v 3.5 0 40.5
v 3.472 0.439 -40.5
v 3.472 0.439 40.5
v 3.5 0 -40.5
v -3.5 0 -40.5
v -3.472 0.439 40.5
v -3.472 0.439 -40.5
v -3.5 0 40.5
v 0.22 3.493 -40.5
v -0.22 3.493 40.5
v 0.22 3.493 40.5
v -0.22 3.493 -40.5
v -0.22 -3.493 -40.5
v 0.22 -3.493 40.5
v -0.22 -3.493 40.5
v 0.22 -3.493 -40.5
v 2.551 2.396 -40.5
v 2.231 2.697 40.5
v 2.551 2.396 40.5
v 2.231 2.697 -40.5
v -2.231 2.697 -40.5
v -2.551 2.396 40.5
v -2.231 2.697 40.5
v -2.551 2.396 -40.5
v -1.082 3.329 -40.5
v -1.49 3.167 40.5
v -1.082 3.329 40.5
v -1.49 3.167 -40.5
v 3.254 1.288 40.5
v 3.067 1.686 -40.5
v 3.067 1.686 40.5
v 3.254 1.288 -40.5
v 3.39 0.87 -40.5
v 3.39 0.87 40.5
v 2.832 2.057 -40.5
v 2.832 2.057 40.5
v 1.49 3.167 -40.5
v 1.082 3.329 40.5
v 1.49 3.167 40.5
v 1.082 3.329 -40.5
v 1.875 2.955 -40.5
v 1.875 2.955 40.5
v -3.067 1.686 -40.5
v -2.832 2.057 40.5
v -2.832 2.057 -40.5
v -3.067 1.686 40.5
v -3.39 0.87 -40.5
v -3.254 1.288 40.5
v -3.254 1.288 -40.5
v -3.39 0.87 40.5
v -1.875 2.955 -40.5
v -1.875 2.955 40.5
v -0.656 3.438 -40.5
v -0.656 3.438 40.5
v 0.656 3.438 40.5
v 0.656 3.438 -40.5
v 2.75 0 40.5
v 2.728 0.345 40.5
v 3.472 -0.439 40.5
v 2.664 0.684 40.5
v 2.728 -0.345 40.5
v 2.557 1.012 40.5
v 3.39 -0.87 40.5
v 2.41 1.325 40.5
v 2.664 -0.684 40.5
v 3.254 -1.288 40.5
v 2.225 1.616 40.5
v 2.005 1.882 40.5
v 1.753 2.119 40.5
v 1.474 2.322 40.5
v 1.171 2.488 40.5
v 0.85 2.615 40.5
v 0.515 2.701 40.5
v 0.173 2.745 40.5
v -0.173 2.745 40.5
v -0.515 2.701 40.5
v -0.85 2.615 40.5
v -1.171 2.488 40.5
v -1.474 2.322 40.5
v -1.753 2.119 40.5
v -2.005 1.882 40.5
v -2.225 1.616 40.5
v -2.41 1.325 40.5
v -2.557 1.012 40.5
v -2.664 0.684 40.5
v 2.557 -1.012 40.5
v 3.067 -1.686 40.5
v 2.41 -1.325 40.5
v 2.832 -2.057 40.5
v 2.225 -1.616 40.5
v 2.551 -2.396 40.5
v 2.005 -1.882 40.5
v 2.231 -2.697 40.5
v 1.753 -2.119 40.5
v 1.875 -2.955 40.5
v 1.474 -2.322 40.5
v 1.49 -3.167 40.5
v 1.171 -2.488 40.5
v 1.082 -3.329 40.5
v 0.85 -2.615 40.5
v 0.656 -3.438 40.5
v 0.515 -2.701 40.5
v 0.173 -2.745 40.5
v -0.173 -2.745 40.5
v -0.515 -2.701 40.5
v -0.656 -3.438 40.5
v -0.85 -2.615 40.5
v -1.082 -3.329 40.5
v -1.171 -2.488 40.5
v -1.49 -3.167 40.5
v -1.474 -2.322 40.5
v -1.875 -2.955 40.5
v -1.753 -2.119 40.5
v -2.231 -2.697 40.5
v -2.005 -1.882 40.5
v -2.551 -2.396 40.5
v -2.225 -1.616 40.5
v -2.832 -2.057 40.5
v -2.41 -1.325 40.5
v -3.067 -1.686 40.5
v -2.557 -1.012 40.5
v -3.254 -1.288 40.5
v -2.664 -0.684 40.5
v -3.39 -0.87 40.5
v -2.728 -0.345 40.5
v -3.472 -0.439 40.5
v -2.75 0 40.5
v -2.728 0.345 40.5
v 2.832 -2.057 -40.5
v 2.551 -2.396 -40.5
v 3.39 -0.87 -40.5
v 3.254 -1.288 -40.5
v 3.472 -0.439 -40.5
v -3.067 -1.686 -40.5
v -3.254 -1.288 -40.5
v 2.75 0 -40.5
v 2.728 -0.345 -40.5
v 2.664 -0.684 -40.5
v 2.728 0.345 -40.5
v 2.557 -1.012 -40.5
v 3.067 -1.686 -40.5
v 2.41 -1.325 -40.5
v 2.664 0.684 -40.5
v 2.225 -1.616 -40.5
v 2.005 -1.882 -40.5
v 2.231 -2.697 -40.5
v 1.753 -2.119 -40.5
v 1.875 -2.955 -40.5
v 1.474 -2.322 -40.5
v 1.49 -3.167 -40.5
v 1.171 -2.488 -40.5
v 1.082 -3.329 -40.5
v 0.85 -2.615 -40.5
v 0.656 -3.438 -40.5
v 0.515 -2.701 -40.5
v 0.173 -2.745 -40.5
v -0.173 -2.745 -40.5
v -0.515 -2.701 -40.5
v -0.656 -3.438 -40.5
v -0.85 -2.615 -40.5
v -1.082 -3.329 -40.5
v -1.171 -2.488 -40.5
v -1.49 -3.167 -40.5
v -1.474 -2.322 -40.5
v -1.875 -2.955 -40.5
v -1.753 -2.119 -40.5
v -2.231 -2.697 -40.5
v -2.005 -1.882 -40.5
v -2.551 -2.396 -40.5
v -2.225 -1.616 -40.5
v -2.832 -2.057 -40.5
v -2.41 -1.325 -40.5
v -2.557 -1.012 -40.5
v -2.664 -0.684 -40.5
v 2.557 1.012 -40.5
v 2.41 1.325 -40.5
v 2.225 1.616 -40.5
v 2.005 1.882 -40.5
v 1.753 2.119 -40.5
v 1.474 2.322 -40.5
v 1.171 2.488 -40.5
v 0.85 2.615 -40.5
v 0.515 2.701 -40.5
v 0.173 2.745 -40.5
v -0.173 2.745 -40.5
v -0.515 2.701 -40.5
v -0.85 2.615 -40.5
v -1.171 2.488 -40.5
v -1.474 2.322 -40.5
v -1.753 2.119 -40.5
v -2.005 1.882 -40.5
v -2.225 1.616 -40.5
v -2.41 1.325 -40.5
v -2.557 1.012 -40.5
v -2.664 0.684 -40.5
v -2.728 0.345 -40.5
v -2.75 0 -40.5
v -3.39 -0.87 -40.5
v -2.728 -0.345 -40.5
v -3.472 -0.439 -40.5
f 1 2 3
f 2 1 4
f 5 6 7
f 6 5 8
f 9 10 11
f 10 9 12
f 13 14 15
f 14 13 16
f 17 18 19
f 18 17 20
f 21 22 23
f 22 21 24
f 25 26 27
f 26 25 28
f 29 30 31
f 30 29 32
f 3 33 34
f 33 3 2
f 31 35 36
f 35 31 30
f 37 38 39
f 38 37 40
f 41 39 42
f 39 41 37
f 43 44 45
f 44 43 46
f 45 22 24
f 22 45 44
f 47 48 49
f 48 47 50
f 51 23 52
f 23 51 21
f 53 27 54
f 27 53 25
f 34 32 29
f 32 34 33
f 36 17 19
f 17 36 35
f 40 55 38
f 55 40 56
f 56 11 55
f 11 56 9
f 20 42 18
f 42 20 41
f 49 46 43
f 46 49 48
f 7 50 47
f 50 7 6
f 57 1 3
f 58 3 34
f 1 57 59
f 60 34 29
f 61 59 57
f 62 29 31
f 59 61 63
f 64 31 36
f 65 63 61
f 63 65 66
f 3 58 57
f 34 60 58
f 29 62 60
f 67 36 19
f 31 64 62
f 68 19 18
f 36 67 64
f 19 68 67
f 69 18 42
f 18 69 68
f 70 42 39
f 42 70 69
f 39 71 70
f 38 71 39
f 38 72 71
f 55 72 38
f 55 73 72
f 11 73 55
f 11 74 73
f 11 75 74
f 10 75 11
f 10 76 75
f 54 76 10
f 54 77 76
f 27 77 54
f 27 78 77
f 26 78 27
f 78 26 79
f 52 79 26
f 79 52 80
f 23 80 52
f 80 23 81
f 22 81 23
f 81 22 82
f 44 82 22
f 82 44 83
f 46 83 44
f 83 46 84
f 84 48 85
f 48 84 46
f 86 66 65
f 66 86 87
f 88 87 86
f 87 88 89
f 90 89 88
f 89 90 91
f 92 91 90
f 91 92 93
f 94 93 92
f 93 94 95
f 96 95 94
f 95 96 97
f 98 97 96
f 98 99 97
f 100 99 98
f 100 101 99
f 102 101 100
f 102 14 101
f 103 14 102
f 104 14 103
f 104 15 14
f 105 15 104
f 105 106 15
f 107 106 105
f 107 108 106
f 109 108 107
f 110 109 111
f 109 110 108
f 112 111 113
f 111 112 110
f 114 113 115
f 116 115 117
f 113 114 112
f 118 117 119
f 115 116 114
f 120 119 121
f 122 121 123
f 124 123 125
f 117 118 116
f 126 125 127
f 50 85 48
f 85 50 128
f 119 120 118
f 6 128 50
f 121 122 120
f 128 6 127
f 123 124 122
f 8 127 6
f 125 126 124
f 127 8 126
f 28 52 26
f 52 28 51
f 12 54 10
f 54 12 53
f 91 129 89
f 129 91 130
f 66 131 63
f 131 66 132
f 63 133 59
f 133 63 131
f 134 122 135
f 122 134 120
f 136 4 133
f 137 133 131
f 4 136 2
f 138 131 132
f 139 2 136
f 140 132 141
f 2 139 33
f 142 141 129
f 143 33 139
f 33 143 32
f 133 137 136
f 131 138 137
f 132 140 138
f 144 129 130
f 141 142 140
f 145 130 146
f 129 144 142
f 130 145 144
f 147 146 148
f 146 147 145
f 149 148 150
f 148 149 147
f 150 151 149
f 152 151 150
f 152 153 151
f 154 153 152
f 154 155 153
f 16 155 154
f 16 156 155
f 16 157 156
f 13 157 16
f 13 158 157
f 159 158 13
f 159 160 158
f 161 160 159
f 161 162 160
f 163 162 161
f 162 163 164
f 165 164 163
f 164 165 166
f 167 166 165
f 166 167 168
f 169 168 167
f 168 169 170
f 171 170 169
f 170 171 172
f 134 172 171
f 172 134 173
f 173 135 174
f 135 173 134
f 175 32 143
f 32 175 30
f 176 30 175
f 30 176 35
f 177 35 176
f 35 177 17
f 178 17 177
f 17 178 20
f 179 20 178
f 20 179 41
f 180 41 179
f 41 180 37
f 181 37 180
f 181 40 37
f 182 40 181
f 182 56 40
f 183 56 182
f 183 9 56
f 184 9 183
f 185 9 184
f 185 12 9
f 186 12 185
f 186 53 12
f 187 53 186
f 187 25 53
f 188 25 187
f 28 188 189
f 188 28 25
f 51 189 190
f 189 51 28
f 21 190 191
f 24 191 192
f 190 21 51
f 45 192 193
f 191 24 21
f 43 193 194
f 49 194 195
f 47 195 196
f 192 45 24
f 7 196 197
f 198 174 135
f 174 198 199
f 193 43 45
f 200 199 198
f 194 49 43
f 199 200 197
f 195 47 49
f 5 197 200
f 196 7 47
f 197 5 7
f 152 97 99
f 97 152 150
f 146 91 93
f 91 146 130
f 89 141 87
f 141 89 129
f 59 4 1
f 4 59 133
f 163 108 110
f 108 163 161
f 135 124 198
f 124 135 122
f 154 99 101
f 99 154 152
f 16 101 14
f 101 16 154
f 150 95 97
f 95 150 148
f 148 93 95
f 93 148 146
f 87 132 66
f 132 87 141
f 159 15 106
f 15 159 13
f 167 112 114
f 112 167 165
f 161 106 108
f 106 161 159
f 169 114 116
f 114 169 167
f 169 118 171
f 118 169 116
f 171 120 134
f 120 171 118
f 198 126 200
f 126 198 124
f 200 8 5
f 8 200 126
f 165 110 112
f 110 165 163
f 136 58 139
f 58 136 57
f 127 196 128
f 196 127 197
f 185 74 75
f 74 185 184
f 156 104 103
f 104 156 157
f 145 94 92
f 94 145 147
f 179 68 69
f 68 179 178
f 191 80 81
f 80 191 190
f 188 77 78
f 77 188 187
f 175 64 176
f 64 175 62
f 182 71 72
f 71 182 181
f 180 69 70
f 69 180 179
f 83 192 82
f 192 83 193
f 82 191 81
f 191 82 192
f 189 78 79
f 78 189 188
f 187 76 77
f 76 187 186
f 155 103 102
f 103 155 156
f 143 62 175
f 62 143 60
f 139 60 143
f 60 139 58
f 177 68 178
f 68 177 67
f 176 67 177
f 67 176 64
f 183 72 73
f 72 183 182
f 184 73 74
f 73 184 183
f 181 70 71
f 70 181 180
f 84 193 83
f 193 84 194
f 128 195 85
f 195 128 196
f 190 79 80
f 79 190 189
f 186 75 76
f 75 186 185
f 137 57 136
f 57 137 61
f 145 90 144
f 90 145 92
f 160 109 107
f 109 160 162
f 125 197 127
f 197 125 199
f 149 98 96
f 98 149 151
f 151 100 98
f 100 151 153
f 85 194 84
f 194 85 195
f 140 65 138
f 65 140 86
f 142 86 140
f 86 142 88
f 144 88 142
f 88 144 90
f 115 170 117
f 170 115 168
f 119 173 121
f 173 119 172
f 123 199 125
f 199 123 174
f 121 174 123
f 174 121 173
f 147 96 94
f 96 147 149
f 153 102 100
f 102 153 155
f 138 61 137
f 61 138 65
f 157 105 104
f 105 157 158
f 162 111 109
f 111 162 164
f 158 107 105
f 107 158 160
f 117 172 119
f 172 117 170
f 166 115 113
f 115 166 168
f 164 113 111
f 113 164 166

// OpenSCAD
$fn = 50;


difference() {
	union() {
		translate(v = [0, 0, -40.5000000000]) {
			cylinder(h = 81, r = 3.5000000000);
		}
	}
	union() {
		translate(v = [0, 0, -100.0000000000]) {
			cylinder(h = 200, r = 2.7500000000);
		}
	}
}
